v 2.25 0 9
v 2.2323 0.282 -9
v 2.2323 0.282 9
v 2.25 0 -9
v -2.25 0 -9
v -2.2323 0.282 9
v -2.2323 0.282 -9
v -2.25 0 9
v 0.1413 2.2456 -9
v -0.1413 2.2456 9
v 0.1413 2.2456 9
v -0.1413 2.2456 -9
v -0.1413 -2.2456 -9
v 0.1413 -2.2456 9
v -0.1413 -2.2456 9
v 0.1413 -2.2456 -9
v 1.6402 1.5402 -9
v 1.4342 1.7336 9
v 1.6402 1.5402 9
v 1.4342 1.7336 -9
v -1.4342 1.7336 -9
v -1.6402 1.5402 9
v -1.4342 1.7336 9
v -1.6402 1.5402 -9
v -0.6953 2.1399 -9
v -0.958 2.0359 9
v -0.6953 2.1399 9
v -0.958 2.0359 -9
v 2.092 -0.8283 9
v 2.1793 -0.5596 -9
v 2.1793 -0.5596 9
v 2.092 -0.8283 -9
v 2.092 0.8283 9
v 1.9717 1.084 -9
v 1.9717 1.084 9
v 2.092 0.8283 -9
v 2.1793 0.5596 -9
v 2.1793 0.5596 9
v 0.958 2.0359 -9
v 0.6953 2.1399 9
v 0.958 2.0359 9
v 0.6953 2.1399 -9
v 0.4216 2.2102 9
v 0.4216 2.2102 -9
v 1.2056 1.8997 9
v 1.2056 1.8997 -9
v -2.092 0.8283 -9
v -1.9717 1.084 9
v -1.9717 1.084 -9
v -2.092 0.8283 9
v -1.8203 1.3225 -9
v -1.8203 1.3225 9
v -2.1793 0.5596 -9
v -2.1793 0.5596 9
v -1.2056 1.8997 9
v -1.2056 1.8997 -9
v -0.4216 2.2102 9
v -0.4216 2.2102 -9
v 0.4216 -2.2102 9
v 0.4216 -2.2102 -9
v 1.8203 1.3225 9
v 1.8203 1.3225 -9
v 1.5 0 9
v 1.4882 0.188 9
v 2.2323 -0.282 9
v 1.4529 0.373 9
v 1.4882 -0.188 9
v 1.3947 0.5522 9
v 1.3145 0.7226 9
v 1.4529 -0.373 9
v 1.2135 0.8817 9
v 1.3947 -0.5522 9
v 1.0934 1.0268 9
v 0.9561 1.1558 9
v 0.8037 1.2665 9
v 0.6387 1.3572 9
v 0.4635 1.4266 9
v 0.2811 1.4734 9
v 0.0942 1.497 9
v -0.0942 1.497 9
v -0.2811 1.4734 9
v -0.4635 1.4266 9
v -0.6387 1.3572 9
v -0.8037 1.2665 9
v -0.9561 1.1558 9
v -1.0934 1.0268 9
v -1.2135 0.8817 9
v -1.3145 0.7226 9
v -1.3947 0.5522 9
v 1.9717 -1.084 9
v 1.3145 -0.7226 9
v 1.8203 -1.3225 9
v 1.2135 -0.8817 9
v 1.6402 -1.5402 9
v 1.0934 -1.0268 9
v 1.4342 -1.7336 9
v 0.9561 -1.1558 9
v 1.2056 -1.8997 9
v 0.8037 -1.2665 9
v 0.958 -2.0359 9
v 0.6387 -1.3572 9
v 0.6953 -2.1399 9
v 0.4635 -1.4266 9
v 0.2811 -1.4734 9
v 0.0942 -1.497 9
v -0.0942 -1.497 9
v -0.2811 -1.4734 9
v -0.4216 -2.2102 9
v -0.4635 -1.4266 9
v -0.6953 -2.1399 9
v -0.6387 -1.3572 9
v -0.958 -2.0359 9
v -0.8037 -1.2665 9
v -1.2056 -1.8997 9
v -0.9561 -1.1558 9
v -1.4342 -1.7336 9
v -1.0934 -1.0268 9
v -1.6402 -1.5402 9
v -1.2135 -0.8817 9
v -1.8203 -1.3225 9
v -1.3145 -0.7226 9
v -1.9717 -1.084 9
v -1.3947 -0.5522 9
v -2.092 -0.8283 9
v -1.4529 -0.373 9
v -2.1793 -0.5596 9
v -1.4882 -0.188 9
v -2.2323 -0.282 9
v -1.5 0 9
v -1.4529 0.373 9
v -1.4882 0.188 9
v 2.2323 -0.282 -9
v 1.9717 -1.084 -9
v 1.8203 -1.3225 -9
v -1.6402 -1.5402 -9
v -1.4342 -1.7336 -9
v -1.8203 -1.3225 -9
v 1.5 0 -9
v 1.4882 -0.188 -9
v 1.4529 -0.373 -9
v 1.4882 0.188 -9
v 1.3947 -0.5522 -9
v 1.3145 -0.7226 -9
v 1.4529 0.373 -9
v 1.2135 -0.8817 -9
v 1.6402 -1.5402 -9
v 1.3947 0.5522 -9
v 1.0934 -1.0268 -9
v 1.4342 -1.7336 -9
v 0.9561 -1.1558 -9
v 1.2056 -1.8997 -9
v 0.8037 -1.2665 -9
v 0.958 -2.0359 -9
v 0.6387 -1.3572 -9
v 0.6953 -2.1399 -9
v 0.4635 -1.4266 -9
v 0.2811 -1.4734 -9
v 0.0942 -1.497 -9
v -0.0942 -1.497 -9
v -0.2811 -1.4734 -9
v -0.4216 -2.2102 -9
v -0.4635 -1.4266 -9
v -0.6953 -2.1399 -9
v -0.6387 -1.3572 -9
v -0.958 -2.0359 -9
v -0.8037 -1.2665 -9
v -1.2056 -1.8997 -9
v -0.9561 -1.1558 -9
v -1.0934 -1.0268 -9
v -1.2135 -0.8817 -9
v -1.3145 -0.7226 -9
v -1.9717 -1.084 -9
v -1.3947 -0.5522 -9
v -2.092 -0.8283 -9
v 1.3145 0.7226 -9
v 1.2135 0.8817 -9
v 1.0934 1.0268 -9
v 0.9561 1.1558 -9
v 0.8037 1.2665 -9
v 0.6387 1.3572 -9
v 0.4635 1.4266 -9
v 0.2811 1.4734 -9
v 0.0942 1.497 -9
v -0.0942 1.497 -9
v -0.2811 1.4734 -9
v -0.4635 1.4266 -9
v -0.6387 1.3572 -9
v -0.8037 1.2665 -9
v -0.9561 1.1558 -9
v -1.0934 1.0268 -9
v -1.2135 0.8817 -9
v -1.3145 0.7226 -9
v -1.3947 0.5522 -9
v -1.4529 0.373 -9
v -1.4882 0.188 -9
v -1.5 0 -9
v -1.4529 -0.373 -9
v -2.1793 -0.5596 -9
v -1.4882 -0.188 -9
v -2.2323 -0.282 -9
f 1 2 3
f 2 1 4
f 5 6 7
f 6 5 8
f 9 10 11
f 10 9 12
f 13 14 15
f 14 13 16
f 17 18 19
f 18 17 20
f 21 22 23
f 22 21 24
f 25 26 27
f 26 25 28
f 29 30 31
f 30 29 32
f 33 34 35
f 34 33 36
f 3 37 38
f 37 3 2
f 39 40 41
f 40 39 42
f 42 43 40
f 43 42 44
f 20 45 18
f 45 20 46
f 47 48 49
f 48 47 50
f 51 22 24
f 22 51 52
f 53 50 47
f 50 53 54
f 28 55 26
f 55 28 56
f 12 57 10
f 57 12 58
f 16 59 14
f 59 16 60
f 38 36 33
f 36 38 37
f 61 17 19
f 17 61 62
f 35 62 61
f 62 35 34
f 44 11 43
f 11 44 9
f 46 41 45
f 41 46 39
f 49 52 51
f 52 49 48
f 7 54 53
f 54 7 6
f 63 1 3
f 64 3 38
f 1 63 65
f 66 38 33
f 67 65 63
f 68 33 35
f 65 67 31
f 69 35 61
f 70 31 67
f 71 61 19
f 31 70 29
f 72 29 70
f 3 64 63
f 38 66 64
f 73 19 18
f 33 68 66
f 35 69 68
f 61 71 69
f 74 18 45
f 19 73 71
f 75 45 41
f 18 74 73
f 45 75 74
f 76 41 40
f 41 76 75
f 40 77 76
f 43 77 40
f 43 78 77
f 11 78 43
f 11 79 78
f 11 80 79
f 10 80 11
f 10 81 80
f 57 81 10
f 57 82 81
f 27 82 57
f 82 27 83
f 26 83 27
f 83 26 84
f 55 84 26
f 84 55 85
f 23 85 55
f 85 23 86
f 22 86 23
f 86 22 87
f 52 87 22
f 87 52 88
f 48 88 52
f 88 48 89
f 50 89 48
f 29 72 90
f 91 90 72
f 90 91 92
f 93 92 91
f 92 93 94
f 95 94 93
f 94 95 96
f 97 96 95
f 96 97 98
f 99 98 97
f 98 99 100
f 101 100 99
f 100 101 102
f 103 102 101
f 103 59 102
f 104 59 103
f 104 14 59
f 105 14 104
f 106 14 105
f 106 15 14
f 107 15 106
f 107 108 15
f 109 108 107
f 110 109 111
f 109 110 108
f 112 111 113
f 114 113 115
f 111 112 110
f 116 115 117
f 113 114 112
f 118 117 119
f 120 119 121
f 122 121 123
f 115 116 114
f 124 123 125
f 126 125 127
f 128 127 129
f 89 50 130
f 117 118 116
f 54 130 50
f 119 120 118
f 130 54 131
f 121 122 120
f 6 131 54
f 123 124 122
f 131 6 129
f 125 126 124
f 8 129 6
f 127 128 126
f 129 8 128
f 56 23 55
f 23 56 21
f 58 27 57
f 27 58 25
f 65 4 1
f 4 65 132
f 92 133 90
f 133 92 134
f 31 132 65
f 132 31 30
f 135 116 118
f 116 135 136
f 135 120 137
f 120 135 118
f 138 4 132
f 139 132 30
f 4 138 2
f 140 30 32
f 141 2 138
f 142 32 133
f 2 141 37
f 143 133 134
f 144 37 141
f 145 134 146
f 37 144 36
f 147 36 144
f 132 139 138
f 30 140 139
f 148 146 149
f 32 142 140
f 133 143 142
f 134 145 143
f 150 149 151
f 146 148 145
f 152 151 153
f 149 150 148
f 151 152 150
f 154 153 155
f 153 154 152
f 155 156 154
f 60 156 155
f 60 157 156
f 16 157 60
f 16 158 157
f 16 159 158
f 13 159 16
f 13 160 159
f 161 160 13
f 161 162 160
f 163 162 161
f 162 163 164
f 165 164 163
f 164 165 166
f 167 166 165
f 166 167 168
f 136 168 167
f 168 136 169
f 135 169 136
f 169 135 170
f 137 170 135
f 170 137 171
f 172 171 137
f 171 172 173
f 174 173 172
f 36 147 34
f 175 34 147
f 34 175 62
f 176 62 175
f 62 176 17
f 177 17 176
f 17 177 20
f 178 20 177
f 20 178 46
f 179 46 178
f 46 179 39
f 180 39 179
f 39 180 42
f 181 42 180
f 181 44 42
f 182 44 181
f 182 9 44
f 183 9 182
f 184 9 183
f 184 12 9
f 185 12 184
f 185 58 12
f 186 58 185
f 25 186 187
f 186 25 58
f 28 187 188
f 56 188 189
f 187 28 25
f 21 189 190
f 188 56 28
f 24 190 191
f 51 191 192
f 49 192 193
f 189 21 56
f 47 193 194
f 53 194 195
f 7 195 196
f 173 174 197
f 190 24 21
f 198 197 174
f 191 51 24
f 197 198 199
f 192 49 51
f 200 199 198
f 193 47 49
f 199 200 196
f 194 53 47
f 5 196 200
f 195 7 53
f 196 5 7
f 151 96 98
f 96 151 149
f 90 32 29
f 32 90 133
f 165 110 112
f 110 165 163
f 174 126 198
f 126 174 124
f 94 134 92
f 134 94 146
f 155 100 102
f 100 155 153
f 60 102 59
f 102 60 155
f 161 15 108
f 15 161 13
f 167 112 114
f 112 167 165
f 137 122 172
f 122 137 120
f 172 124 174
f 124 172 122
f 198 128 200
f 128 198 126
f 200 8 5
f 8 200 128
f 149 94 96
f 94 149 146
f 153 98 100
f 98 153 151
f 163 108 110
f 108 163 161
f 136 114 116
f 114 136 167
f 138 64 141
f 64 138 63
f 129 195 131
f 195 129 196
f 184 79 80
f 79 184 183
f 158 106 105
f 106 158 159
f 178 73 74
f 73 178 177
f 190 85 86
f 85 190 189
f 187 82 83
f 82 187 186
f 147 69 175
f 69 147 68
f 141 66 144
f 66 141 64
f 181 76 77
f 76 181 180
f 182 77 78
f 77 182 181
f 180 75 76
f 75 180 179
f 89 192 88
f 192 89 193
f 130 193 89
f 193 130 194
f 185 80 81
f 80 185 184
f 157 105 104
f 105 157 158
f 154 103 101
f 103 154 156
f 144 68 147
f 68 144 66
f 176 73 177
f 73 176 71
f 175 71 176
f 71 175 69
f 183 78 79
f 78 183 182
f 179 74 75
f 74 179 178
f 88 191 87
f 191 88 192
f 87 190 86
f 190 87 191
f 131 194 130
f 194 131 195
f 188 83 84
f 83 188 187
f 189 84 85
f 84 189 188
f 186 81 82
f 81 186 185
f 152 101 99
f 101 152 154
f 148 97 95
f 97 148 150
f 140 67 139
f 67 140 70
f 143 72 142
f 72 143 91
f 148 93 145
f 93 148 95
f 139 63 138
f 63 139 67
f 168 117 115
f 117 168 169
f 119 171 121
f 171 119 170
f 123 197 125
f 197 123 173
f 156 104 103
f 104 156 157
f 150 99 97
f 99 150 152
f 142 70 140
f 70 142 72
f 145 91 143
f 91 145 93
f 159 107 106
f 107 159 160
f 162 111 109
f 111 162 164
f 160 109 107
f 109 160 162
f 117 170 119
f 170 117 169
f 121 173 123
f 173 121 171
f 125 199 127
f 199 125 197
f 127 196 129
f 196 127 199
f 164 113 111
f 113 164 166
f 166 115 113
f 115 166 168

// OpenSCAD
$fn = 50;


difference() {
	union() {
		translate(v = [0, 0, -9.0000000000]) {
			cylinder(h = 18, r = 2.2500000000);
		}
	}
	union() {
		translate(v = [0, 0, -100.0000000000]) {
			cylinder(h = 200, r = 1.5000000000);
		}
	}
}
